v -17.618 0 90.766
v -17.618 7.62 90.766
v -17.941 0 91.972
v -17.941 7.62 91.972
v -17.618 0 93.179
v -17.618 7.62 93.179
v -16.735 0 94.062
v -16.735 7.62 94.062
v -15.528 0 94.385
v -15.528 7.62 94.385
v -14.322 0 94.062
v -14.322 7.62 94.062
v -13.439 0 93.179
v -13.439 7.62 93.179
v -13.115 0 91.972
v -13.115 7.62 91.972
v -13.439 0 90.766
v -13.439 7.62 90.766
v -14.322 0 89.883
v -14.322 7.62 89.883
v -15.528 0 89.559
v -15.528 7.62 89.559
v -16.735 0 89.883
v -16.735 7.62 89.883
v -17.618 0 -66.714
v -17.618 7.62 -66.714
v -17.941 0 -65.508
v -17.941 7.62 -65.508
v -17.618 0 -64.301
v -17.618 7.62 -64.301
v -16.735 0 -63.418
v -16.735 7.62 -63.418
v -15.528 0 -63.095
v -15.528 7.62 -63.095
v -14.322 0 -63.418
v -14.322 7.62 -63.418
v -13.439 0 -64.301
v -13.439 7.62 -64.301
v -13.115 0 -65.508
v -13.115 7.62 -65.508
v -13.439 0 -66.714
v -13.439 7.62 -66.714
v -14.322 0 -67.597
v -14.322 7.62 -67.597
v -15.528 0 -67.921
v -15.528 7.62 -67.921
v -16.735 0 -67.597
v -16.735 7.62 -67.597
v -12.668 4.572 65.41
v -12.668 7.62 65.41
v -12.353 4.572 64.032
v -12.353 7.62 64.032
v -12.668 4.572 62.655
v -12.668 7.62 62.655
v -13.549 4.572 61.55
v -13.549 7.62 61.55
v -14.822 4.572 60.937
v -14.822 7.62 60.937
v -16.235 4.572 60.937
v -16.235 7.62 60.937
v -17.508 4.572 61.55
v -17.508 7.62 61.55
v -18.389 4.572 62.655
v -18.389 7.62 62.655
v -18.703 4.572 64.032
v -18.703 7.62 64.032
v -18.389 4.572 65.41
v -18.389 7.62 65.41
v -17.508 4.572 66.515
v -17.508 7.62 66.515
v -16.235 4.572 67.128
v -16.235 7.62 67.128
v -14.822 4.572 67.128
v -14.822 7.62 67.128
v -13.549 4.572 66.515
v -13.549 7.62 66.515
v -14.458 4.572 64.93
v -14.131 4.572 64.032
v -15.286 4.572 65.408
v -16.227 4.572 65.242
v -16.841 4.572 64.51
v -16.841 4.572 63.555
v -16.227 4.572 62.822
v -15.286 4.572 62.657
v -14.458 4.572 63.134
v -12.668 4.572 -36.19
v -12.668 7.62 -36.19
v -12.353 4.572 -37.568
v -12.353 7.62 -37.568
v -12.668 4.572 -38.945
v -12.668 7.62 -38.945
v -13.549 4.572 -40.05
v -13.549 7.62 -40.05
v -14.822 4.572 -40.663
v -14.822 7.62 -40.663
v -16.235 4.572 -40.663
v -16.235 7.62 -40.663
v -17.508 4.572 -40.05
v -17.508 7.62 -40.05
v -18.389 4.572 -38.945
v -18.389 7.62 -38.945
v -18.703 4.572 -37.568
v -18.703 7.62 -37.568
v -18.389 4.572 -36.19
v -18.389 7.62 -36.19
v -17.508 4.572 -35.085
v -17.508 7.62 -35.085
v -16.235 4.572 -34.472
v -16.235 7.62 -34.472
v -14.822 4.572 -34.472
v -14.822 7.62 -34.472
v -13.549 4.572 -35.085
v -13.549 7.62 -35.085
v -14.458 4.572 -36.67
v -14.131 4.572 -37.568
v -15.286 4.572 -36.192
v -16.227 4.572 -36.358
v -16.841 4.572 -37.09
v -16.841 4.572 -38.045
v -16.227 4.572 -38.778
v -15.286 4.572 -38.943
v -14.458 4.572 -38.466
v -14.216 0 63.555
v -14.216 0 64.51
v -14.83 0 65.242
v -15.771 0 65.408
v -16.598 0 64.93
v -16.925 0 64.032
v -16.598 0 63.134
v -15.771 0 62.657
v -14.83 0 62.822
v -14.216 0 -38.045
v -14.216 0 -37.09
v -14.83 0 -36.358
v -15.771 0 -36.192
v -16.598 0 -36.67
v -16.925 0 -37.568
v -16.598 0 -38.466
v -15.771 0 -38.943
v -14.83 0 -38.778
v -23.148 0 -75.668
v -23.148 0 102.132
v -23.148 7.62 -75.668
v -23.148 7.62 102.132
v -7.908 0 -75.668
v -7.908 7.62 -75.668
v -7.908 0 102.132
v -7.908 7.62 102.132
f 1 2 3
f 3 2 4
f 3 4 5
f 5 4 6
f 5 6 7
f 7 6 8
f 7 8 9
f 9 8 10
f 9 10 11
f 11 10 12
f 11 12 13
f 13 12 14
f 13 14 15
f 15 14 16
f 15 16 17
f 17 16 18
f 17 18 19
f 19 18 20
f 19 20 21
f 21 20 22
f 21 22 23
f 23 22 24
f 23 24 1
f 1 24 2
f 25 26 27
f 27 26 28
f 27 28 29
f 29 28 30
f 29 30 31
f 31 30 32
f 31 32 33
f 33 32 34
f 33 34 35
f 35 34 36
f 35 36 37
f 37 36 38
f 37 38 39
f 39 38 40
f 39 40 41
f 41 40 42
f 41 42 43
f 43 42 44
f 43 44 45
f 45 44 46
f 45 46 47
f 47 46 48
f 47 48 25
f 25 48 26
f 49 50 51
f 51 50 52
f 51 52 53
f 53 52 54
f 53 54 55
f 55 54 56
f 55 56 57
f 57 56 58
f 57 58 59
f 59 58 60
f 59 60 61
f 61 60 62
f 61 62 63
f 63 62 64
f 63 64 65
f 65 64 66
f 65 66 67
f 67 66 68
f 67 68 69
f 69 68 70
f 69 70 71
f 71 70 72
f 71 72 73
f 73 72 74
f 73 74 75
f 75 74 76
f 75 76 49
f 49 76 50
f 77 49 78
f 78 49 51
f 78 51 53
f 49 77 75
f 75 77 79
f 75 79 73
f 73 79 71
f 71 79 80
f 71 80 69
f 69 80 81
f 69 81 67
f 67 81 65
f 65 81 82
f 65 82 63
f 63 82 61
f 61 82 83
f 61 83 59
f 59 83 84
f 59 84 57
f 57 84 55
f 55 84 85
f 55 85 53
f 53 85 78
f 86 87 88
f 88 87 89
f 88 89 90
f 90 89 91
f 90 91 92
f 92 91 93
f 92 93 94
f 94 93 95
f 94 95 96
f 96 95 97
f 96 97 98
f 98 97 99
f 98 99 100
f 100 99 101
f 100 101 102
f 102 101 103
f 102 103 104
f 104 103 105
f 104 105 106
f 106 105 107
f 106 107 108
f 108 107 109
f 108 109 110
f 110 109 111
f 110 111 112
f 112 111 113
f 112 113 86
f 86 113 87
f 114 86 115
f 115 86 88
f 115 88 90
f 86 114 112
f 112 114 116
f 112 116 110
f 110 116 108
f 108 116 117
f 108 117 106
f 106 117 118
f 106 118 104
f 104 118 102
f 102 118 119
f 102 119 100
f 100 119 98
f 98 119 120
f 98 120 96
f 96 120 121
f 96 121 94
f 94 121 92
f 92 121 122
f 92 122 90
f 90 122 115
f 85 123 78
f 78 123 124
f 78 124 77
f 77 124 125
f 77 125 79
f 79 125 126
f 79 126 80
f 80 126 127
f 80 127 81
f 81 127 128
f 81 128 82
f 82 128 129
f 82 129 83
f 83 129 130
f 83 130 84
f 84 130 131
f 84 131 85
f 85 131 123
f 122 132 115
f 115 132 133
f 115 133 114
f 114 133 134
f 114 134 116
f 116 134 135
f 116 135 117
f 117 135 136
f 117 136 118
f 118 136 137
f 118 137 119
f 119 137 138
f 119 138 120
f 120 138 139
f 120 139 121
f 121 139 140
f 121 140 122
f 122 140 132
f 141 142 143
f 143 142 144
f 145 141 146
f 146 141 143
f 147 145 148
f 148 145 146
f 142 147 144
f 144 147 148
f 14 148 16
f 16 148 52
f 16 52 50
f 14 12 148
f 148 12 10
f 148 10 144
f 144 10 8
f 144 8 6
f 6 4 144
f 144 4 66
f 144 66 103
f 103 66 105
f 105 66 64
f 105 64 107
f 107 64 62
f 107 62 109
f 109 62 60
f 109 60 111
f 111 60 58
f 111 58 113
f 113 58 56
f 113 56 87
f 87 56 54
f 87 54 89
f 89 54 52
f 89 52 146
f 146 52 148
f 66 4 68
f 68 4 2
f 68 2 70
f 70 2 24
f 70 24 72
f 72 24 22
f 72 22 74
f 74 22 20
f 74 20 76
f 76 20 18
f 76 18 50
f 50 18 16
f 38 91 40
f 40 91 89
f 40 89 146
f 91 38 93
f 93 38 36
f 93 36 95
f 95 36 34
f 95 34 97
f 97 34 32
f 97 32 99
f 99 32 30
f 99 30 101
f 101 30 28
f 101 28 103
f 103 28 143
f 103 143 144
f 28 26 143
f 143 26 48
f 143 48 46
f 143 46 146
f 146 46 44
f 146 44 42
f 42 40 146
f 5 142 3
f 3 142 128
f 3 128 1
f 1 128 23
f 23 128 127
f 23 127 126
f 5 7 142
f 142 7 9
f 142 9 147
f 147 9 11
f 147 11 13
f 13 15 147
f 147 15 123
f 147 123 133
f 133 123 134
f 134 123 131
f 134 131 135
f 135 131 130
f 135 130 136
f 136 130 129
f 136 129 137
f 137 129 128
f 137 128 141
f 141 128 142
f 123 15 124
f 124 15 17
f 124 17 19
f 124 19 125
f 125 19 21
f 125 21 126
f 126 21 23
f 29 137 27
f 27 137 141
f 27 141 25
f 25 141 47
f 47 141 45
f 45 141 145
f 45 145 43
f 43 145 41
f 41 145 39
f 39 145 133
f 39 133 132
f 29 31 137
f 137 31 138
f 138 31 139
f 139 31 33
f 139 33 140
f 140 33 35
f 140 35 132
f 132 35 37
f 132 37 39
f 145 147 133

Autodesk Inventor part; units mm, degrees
ref_plane "YZ Plane" through (0, 0, 0) normal (1, 0, 0) x (0, 1, 0)
ref_plane "XZ Plane" through (0, 0, 0) normal (0, 1, 0) x (-1, 0, 0)
ref_plane "XY Plane" through (0, 0, 0) normal (0, 0, 1) x (1, 0, 0)
sketch "Sketch1" plane through (0, 0, 0) normal (0, 1, 0) x (-1, 0, 0)
  line L0 (23.1483, 102.1323) -> (7.9083, 102.1323)
  line L1 (7.9083, 102.1323) -> (7.9083, -75.6677)
  line L2 (7.9083, -75.6677) -> (23.1483, -75.6677)
  line L3 (23.1483, -75.6677) -> (23.1483, 102.1323)
  point P0 (0, 0)
  dimension "d0" = 177.8
  dimension "d1" = 15.24
extrude "Extrusion1" add sketch "Sketch1" along normal blind 7.62
sketch "Sketch2" plane through (0, 7.62, 0) normal (0, 1, 0) x (1, 0, 0)
  line L0 (-23.1483, 75.6677) -> (-23.1483, -102.1323) projected
  line L1 (-7.9083, 75.6677) -> (-23.1483, 75.6677) projected
  line L2 (-23.1483, -102.1323) -> (-7.9083, -102.1323) projected
  point P0 (0, 0)
  point P1 (-15.5283, -64.0323)
  point P2 (-15.5283, 37.5677)
  dimension "d4" = 0
  dimension "d5" = 101.6
  dimension "d6" = 7.62
  dimension "d7" = 38.1
  dimension "d8" = 38.1
hole "Hole1" at (-15.5283, 7.62, 64.0323) at (-15.5283, 7.62, -37.5677) direction (0, -1, 0) diameter 2.794 end through all
sketch "Sketch3" plane through (0, 7.62, 0) normal (0, 1, 0) x (1, 0, 0)
  circle A0 centre (-15.5283, -64.0323) radius 1.397 projected
  circle A1 centre (-15.5283, 37.5677) radius 1.397 projected
  circle A2 centre (-15.5283, -64.0323) radius 3.175
  circle A3 centre (-15.5283, 37.5677) radius 3.175
  point P0 (0, 0)
  dimension "d16" = 6.35
  dimension "d17" = 6.35
extrude "Extrusion2" cut sketch "Sketch3" against normal blind 3.048
sketch "Sketch4" plane through (0, 7.62, 0) normal (0, 1, 0) x (1, 0, 0)
  line L0 (-7.9083, -102.1323) -> (-7.9083, 75.6677) projected
  line L1 (-23.1483, -102.1323) -> (-7.9083, -102.1323) projected
  line L2 (-7.9083, 75.6677) -> (-23.1483, 75.6677) projected
  point P0 (0, 0)
  point P1 (-15.5283, -91.9723)
  point P2 (-15.5283, 65.5077)
  dimension "d20" = 0
  dimension "d21" = 7.62
  dimension "d22" = 10.16
  dimension "d23" = 10.16
hole "Hole2" at (-15.5283, 7.62, 91.9723) at (-15.5283, 7.62, -65.5077) direction (0, -1, 0) diameter 4.826 end through all
properties part number "RioConnectors"
